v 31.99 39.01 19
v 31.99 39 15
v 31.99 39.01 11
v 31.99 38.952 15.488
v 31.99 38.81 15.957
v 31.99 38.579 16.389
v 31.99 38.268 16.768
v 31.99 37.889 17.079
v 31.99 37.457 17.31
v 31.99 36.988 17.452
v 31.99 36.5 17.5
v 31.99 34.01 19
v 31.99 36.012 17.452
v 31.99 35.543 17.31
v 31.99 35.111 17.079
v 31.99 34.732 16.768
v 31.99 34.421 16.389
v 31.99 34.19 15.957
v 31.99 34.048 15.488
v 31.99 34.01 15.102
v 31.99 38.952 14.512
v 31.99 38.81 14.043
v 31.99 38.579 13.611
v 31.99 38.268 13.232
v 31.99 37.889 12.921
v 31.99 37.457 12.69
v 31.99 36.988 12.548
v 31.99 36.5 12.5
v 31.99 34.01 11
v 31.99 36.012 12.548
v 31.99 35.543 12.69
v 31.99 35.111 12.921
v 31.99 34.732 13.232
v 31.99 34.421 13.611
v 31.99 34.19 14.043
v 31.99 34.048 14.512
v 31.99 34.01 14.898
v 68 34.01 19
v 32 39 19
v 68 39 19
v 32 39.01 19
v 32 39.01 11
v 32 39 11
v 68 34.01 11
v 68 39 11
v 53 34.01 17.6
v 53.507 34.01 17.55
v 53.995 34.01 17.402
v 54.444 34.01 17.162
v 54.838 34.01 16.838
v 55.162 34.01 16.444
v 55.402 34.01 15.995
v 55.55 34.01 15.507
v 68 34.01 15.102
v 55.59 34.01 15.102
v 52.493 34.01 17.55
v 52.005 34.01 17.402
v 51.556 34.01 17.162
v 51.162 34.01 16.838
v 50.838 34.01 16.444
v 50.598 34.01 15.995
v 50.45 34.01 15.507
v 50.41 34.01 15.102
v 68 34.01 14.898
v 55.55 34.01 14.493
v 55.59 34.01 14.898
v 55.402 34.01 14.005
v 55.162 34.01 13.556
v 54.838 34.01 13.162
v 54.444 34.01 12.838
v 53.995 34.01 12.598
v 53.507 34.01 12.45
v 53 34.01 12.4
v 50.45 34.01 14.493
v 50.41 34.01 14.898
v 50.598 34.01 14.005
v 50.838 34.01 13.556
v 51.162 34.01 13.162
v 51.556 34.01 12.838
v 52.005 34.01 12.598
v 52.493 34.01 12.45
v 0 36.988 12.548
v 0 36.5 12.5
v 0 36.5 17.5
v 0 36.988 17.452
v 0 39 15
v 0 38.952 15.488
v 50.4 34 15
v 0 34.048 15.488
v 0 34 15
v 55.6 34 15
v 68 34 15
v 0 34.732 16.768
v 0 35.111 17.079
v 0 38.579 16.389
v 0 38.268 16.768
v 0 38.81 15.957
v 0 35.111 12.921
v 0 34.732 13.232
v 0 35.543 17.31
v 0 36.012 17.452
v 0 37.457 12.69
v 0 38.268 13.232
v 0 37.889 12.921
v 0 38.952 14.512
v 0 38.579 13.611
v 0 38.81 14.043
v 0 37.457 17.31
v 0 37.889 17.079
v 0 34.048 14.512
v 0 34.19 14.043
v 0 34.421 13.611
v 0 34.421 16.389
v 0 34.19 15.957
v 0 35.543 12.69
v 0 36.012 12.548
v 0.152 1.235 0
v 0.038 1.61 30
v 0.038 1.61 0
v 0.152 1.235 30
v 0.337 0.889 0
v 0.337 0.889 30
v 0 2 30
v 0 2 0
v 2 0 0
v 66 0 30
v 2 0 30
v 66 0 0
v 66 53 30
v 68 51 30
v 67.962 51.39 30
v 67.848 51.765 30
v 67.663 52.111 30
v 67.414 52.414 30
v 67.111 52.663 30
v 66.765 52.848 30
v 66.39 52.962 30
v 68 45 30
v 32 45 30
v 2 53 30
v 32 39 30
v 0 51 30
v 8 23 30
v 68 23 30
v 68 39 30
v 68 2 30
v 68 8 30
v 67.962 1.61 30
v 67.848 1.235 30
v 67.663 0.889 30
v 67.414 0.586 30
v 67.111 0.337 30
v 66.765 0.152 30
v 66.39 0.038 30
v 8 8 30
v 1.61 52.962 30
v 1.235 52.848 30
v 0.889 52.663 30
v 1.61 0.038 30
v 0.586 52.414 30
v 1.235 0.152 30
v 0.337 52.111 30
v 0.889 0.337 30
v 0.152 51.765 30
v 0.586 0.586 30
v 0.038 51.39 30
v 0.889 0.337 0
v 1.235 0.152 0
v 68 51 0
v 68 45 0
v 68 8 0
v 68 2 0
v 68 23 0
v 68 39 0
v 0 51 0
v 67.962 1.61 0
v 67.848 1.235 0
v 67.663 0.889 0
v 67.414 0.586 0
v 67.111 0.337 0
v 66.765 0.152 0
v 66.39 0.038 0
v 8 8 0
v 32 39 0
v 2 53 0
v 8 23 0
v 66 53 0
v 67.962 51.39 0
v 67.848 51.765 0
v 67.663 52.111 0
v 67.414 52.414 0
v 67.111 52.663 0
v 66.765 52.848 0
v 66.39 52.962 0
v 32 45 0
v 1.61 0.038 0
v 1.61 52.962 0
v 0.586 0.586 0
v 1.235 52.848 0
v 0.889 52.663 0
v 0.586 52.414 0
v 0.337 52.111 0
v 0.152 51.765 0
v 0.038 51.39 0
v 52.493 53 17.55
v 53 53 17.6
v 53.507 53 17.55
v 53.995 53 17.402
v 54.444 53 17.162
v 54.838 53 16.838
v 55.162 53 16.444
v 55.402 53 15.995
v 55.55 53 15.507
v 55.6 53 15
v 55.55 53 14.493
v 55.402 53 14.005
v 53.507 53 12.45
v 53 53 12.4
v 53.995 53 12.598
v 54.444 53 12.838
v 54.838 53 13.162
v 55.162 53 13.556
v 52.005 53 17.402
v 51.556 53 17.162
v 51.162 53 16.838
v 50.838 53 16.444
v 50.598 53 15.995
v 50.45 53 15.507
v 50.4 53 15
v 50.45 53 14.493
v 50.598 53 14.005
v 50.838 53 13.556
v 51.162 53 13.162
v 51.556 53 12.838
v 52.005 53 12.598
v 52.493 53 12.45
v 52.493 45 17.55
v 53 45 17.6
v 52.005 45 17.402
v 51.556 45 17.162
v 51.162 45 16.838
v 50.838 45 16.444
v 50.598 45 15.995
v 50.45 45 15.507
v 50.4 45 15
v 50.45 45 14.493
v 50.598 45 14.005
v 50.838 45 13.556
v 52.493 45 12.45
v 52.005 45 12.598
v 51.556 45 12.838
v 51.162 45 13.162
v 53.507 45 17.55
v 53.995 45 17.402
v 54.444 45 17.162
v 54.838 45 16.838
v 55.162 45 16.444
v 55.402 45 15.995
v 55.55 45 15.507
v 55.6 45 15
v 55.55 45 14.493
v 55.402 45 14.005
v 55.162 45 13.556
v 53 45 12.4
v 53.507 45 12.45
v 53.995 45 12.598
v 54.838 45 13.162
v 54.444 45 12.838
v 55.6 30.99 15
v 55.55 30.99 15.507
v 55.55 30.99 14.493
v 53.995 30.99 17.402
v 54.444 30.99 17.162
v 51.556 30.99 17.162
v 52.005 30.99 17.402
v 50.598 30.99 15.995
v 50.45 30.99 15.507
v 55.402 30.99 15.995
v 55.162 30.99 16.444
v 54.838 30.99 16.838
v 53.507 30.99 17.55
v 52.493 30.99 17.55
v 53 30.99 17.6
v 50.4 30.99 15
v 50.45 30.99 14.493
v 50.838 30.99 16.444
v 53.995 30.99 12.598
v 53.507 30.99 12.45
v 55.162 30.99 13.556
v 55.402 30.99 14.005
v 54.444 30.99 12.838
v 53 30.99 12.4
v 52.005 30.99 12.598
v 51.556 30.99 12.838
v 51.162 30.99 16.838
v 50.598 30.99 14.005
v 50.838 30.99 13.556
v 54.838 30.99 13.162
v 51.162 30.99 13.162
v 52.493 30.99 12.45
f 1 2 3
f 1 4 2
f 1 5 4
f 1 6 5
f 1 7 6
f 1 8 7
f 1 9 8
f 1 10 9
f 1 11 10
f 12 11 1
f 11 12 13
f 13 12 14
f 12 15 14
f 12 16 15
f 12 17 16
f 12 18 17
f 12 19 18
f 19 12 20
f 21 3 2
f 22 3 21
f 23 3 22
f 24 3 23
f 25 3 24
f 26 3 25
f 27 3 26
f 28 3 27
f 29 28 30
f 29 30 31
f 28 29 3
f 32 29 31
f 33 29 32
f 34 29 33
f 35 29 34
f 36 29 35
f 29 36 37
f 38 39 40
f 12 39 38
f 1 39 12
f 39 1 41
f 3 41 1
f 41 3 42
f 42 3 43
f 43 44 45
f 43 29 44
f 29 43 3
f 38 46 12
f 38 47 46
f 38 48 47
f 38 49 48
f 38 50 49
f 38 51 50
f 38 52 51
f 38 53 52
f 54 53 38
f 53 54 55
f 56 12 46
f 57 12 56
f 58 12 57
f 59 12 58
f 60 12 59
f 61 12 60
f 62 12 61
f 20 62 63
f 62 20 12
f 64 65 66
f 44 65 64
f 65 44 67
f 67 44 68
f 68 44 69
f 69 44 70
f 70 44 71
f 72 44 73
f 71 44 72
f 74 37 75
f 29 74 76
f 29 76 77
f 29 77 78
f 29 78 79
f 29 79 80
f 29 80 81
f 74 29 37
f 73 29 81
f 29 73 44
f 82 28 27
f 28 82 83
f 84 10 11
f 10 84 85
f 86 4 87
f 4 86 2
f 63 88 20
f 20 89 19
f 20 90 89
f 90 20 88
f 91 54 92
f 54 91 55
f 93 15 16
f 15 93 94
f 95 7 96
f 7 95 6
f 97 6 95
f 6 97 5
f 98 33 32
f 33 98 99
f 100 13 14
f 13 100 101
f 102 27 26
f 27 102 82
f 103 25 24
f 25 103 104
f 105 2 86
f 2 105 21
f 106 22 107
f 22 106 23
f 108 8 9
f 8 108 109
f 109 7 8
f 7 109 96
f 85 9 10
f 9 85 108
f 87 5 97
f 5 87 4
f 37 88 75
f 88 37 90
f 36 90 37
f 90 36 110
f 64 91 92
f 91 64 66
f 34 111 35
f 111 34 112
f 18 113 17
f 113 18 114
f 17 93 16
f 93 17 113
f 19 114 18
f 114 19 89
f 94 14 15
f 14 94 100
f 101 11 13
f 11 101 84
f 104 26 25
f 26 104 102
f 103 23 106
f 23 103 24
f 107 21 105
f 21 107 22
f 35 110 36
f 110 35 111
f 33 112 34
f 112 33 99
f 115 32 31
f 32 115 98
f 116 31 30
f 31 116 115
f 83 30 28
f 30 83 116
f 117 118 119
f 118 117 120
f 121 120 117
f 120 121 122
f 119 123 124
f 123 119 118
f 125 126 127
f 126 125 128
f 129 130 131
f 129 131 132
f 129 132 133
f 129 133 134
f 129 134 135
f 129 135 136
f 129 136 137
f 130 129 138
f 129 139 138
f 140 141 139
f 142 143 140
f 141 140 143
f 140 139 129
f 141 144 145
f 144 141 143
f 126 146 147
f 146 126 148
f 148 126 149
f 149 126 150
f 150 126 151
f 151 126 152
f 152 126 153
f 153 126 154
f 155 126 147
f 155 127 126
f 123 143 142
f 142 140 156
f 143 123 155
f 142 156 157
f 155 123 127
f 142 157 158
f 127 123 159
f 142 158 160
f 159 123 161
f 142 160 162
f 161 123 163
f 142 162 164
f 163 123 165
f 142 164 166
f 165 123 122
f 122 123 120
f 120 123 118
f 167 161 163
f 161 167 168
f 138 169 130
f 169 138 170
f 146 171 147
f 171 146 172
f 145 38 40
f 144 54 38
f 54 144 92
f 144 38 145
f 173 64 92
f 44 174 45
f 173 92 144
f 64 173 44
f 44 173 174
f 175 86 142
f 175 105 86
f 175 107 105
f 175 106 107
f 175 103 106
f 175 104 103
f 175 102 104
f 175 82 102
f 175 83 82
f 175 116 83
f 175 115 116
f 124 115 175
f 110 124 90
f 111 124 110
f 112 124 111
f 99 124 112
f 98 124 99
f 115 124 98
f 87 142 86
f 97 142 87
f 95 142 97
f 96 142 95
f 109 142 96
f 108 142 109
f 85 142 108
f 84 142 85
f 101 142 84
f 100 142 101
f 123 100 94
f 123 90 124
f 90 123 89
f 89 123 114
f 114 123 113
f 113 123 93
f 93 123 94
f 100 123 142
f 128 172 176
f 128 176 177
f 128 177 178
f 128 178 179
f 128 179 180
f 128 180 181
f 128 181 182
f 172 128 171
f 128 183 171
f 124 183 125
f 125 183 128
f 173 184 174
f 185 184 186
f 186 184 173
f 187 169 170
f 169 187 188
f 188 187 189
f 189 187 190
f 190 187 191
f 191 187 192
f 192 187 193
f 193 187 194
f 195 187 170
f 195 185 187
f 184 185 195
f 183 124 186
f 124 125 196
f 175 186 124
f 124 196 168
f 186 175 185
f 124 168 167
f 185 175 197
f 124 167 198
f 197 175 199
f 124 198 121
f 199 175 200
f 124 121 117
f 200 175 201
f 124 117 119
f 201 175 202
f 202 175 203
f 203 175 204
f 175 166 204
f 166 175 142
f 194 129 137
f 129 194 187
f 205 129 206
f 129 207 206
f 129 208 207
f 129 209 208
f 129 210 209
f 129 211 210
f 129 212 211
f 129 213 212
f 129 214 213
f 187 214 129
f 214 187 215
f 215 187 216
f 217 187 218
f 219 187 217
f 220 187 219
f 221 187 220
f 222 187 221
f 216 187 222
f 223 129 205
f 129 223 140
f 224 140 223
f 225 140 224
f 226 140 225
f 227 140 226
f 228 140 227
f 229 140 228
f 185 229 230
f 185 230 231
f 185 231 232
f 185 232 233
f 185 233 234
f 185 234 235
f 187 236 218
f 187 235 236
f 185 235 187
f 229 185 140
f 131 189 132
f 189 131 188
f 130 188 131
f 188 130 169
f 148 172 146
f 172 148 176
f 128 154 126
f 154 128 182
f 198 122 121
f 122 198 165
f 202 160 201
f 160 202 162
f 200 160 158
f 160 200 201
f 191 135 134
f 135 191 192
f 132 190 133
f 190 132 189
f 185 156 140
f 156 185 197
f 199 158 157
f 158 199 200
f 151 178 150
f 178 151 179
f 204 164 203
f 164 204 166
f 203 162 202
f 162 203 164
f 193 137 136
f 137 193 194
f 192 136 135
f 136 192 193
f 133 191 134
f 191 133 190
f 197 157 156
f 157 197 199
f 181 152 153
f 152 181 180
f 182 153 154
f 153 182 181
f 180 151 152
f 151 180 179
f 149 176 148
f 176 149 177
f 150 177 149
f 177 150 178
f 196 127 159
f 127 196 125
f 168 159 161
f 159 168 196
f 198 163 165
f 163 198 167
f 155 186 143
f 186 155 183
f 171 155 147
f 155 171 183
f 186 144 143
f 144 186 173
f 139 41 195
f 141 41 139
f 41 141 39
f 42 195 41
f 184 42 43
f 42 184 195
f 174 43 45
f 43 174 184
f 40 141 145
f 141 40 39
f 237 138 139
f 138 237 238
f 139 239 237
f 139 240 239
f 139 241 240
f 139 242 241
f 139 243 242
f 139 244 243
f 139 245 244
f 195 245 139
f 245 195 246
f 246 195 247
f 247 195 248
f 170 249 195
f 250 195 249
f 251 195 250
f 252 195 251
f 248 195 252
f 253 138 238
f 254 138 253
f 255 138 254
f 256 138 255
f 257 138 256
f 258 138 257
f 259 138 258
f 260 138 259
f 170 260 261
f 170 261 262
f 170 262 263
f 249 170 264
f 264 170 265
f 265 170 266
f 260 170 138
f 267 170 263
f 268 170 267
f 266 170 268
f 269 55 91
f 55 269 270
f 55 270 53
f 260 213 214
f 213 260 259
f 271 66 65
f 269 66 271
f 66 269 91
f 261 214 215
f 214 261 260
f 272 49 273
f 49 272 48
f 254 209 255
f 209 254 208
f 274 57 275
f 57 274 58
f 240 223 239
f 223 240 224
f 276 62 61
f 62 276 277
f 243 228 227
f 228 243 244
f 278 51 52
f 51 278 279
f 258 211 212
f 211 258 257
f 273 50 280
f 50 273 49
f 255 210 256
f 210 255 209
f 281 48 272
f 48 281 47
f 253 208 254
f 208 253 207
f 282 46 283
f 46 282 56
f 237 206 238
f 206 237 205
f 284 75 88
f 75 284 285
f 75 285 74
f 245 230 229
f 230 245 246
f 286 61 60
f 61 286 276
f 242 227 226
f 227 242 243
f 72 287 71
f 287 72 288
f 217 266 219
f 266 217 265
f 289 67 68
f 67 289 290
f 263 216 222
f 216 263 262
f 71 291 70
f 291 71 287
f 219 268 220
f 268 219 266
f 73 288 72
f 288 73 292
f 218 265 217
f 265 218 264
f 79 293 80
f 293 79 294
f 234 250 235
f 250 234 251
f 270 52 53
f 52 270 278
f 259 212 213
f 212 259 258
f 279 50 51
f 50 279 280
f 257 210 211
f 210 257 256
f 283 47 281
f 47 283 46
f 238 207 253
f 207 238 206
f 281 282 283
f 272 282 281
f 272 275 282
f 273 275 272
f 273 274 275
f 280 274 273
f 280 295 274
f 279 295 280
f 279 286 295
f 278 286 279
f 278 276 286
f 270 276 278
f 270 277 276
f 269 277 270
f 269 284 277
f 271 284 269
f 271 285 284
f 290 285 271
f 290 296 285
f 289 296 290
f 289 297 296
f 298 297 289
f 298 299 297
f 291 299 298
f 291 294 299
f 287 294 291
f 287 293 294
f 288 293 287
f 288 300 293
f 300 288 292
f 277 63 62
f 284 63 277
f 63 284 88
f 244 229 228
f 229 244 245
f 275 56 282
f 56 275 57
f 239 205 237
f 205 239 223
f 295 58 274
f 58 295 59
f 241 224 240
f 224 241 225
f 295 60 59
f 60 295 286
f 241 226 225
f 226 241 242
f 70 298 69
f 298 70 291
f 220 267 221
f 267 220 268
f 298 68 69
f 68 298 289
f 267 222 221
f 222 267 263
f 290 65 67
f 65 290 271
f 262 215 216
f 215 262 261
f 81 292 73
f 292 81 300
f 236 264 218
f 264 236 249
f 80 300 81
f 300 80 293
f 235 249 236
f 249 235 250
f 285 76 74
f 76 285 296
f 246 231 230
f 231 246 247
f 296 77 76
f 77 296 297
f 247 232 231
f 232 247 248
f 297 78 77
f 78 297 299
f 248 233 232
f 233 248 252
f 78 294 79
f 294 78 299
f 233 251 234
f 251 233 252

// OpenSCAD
// file: rounded_box.scad
/**
 * Small "library" for creating boxes with rounded edges.
 *
 * Hendrik Busch, 2017-18 (https://github.com/hmbusch)
 *
 */
 
/**
 * Creates a 2D-shape of a box with the given dimensions and rounded edges. 
 * Be sure to increase $fn for nicer edges.
 *
 * @param width
 *          the desired width of the box (default is 10mm)
 * @param depth
 *          the desired depth of the box (default is 10mm)
 * @param height
 *          the desired height of the box (default is 10mm)
 * @param edge_radius
 *          the radius of all the edges on the xy-plane (default is 2mm)
 */  
module box_with_round_edges_2d(width = 10, depth = 10, edge_radius = 2) {
    ed = edge_radius * 2;
    translate([edge_radius, edge_radius, 0]) hull() {
        circle(d = ed);
        translate([width - ed, 0, 0]) circle(d = ed);
        translate([0, depth - ed, 0]) circle(d = ed);
        translate([width - ed, depth - ed, 0]) circle(d = ed);    
    }
}
 
/**
 * Call to create a box with rounded edges (edges will be round on one plane only).
 * Be sure to increase $fn for nicer edges.
 * 
 * @param width
 *          the desired width of the box (default is 10mm)
 * @param depth
 *          the desired depth of the box (default is 10mm)
 * @param height
 *          the desired height of the box (default is 10mm)
 * @param edge_radius
 *          the radius of all the edges on the xy-plane (default is 2mm)
 *
 */
module box_with_round_edges_3d(width = 10, depth = 10, height = 10, edge_radius = 2) {
	linear_extrude(height = height) {
		box_with_round_edges_2d(width, depth, edge_radius);
	}
}

/**
 * Call to create a box with rounded edges (edges will be round on one plane only).
 * Be sure to increase $fn for nicer edges. This module has inputs that resemble
 * those of cube() so that it can act as a drop-in replacement.
 * 
 * @param dimensions
 *          3-value-array with x, y and z dimensions (default is 10x10x10mm).
 * @param edge_radius
 *          the radius of all the edges on the xy-plane (default is 2mm)
 *
 */
module box_with_round_edges_3d(dimensions = [10, 10, 10], edge_radius = 2) {
	linear_extrude(height = dimensions[2]) {
		box_with_round_edges_2d(dimensions[0], dimensions[1], edge_radius);
	}
}
// main file
use <../../Various/SCAD/rounded_box.scad>

$fn = 32;

anode_x = 250;
anode_y = 6;
anode_z = 30;

anode_hole = 5.2;
anode_hole_offset = 15;

box_ledge_width = 15;
box_overhang = 60;
anode_overhang = 30;

holder_thickness = 8;
    
cable_routing_x = anode_overhang + 5;
cable_routing_y = 5;
cable_routing_z = 8;

cable_hole = 5;
    
f = 0.01;
df = f * 2;

box_x = holder_thickness + box_overhang;

module holder() {
    difference() {       
        // main body
        box_with_round_edges_3d([box_x, 4 * holder_thickness + box_ledge_width + anode_y, anode_z]);
        // cutout for box ledge
        translate([holder_thickness, holder_thickness, -f]) 
            cube([box_overhang + f, box_ledge_width, anode_z + df]);
        // cutout for anode        
        translate([box_x - cable_routing_x - 1, 3 * holder_thickness + box_ledge_width, -f])
            cube([cable_routing_x + f + 1, anode_y, anode_z + df]);
        // anode screw hole
        hole_height = anode_y + 2 * holder_thickness + df;
            translate([box_x - anode_overhang/2, hole_height + 2 * holder_thickness + box_ledge_width - f, anode_z/2])
                rotate([90, 0, 0])
                    cylinder(d = anode_hole, h = hole_height);
        // cutout for connector
        translate([-f, 3 * holder_thickness + box_ledge_width, anode_z/2]) {
            translate([box_x - cable_routing_x - 1, -cable_routing_y + f, -cable_routing_z/2])            
                cube([cable_routing_x + df + 1, cable_routing_y, cable_routing_z]);
            translate([0, -cable_routing_y/2, 0])
                rotate([0, 90, 0])
                    cylinder(d = cable_hole, h = box_x + df);
        }        
    }
}

module anode() {
    color("gray")
        difference() {
            cube([anode_x, anode_y, anode_z]);    
            translate([anode_hole_offset, anode_y * 1.5, anode_z/2]) 
                rotate([90, 0, 0])
                    cylinder(d = anode_hole, h = 2 * anode_y);
        }
}

holder();
//translate([box_x - anode_overhang, 3 * holder_thickness + box_ledge_width, -f])
//    #anode();
